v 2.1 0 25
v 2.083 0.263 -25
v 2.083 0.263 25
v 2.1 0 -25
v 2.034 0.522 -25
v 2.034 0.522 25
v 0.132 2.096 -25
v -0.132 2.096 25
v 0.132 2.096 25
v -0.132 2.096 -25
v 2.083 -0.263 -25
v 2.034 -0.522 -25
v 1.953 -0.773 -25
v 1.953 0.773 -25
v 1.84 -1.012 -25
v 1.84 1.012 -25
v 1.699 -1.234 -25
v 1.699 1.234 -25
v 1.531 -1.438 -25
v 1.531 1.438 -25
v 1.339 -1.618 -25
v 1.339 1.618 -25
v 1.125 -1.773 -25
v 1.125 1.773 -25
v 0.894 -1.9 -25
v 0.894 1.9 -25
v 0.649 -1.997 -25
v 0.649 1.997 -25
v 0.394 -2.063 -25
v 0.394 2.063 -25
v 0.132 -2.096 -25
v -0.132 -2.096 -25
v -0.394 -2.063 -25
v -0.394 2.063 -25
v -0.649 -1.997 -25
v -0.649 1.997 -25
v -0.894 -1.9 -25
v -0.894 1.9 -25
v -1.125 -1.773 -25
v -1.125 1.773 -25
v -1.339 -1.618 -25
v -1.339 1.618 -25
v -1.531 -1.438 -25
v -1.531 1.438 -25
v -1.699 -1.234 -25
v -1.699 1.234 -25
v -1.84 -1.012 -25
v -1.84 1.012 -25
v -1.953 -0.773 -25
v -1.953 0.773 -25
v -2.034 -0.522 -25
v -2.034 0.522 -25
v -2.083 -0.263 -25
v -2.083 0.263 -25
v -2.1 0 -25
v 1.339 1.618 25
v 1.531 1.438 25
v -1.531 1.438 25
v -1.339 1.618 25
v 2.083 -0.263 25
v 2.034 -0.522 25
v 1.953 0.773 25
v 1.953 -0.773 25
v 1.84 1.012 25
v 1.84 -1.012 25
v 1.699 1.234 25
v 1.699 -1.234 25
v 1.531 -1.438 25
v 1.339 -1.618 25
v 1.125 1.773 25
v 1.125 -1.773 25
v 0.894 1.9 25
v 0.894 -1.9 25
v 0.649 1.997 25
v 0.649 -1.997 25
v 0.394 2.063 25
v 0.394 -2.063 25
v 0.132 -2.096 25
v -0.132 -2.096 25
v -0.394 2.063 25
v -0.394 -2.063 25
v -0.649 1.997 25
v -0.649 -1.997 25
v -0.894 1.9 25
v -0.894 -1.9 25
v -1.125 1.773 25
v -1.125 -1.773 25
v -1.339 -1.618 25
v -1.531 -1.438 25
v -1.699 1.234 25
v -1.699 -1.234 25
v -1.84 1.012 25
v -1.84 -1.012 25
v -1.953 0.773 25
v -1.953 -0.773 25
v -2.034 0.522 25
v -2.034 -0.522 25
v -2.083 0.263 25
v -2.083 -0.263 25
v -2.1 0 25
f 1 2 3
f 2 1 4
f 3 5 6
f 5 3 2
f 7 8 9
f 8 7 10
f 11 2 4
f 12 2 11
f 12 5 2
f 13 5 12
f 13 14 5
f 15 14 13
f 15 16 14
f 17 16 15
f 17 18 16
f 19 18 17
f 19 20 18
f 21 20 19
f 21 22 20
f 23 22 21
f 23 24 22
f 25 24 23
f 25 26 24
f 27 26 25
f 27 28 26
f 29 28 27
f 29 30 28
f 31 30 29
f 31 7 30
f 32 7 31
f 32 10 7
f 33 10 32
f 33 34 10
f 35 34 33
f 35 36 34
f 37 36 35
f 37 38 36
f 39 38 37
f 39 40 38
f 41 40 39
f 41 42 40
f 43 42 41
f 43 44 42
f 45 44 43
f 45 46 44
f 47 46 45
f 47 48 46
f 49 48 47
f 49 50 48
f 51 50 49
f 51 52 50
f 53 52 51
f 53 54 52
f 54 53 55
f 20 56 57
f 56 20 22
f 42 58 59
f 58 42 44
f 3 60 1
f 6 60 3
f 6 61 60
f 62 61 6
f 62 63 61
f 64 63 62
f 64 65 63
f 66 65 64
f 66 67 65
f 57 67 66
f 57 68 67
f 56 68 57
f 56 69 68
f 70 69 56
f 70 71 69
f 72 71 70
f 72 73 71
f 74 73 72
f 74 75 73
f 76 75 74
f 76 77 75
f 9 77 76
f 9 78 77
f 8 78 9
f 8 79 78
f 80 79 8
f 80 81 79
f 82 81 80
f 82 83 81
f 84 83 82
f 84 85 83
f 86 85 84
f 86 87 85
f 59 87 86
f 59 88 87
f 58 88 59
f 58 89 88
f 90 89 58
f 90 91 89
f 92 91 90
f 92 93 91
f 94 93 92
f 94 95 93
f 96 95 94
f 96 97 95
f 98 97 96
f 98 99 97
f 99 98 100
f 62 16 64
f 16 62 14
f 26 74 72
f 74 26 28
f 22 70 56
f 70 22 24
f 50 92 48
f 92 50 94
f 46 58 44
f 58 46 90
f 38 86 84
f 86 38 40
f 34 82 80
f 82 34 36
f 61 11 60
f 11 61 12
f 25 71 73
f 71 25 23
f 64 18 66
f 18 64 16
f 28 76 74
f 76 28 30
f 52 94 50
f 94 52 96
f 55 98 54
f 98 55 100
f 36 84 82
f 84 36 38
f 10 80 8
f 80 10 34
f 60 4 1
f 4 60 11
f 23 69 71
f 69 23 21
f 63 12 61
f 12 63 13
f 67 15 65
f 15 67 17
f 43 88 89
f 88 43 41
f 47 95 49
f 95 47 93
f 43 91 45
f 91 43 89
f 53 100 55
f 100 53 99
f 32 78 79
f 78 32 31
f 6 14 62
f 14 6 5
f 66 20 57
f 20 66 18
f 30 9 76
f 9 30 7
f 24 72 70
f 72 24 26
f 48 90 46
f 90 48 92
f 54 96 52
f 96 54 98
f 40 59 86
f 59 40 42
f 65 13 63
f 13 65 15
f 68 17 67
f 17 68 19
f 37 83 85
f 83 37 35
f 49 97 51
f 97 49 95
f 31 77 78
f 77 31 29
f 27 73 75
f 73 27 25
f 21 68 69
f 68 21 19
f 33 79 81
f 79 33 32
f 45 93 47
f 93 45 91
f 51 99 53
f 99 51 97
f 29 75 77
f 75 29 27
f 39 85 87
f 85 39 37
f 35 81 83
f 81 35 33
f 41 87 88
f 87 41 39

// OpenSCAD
$fn = 50;


difference() {
	union() {
		translate(v = [0, 0, -25.0000000000]) {
			cylinder(h = 50, r = 2.1000000000);
		}
	}
	union() {
		translate(v = [0, 0, -100.0000000000]) {
			cylinder(h = 200, r = 0);
		}
	}
}
